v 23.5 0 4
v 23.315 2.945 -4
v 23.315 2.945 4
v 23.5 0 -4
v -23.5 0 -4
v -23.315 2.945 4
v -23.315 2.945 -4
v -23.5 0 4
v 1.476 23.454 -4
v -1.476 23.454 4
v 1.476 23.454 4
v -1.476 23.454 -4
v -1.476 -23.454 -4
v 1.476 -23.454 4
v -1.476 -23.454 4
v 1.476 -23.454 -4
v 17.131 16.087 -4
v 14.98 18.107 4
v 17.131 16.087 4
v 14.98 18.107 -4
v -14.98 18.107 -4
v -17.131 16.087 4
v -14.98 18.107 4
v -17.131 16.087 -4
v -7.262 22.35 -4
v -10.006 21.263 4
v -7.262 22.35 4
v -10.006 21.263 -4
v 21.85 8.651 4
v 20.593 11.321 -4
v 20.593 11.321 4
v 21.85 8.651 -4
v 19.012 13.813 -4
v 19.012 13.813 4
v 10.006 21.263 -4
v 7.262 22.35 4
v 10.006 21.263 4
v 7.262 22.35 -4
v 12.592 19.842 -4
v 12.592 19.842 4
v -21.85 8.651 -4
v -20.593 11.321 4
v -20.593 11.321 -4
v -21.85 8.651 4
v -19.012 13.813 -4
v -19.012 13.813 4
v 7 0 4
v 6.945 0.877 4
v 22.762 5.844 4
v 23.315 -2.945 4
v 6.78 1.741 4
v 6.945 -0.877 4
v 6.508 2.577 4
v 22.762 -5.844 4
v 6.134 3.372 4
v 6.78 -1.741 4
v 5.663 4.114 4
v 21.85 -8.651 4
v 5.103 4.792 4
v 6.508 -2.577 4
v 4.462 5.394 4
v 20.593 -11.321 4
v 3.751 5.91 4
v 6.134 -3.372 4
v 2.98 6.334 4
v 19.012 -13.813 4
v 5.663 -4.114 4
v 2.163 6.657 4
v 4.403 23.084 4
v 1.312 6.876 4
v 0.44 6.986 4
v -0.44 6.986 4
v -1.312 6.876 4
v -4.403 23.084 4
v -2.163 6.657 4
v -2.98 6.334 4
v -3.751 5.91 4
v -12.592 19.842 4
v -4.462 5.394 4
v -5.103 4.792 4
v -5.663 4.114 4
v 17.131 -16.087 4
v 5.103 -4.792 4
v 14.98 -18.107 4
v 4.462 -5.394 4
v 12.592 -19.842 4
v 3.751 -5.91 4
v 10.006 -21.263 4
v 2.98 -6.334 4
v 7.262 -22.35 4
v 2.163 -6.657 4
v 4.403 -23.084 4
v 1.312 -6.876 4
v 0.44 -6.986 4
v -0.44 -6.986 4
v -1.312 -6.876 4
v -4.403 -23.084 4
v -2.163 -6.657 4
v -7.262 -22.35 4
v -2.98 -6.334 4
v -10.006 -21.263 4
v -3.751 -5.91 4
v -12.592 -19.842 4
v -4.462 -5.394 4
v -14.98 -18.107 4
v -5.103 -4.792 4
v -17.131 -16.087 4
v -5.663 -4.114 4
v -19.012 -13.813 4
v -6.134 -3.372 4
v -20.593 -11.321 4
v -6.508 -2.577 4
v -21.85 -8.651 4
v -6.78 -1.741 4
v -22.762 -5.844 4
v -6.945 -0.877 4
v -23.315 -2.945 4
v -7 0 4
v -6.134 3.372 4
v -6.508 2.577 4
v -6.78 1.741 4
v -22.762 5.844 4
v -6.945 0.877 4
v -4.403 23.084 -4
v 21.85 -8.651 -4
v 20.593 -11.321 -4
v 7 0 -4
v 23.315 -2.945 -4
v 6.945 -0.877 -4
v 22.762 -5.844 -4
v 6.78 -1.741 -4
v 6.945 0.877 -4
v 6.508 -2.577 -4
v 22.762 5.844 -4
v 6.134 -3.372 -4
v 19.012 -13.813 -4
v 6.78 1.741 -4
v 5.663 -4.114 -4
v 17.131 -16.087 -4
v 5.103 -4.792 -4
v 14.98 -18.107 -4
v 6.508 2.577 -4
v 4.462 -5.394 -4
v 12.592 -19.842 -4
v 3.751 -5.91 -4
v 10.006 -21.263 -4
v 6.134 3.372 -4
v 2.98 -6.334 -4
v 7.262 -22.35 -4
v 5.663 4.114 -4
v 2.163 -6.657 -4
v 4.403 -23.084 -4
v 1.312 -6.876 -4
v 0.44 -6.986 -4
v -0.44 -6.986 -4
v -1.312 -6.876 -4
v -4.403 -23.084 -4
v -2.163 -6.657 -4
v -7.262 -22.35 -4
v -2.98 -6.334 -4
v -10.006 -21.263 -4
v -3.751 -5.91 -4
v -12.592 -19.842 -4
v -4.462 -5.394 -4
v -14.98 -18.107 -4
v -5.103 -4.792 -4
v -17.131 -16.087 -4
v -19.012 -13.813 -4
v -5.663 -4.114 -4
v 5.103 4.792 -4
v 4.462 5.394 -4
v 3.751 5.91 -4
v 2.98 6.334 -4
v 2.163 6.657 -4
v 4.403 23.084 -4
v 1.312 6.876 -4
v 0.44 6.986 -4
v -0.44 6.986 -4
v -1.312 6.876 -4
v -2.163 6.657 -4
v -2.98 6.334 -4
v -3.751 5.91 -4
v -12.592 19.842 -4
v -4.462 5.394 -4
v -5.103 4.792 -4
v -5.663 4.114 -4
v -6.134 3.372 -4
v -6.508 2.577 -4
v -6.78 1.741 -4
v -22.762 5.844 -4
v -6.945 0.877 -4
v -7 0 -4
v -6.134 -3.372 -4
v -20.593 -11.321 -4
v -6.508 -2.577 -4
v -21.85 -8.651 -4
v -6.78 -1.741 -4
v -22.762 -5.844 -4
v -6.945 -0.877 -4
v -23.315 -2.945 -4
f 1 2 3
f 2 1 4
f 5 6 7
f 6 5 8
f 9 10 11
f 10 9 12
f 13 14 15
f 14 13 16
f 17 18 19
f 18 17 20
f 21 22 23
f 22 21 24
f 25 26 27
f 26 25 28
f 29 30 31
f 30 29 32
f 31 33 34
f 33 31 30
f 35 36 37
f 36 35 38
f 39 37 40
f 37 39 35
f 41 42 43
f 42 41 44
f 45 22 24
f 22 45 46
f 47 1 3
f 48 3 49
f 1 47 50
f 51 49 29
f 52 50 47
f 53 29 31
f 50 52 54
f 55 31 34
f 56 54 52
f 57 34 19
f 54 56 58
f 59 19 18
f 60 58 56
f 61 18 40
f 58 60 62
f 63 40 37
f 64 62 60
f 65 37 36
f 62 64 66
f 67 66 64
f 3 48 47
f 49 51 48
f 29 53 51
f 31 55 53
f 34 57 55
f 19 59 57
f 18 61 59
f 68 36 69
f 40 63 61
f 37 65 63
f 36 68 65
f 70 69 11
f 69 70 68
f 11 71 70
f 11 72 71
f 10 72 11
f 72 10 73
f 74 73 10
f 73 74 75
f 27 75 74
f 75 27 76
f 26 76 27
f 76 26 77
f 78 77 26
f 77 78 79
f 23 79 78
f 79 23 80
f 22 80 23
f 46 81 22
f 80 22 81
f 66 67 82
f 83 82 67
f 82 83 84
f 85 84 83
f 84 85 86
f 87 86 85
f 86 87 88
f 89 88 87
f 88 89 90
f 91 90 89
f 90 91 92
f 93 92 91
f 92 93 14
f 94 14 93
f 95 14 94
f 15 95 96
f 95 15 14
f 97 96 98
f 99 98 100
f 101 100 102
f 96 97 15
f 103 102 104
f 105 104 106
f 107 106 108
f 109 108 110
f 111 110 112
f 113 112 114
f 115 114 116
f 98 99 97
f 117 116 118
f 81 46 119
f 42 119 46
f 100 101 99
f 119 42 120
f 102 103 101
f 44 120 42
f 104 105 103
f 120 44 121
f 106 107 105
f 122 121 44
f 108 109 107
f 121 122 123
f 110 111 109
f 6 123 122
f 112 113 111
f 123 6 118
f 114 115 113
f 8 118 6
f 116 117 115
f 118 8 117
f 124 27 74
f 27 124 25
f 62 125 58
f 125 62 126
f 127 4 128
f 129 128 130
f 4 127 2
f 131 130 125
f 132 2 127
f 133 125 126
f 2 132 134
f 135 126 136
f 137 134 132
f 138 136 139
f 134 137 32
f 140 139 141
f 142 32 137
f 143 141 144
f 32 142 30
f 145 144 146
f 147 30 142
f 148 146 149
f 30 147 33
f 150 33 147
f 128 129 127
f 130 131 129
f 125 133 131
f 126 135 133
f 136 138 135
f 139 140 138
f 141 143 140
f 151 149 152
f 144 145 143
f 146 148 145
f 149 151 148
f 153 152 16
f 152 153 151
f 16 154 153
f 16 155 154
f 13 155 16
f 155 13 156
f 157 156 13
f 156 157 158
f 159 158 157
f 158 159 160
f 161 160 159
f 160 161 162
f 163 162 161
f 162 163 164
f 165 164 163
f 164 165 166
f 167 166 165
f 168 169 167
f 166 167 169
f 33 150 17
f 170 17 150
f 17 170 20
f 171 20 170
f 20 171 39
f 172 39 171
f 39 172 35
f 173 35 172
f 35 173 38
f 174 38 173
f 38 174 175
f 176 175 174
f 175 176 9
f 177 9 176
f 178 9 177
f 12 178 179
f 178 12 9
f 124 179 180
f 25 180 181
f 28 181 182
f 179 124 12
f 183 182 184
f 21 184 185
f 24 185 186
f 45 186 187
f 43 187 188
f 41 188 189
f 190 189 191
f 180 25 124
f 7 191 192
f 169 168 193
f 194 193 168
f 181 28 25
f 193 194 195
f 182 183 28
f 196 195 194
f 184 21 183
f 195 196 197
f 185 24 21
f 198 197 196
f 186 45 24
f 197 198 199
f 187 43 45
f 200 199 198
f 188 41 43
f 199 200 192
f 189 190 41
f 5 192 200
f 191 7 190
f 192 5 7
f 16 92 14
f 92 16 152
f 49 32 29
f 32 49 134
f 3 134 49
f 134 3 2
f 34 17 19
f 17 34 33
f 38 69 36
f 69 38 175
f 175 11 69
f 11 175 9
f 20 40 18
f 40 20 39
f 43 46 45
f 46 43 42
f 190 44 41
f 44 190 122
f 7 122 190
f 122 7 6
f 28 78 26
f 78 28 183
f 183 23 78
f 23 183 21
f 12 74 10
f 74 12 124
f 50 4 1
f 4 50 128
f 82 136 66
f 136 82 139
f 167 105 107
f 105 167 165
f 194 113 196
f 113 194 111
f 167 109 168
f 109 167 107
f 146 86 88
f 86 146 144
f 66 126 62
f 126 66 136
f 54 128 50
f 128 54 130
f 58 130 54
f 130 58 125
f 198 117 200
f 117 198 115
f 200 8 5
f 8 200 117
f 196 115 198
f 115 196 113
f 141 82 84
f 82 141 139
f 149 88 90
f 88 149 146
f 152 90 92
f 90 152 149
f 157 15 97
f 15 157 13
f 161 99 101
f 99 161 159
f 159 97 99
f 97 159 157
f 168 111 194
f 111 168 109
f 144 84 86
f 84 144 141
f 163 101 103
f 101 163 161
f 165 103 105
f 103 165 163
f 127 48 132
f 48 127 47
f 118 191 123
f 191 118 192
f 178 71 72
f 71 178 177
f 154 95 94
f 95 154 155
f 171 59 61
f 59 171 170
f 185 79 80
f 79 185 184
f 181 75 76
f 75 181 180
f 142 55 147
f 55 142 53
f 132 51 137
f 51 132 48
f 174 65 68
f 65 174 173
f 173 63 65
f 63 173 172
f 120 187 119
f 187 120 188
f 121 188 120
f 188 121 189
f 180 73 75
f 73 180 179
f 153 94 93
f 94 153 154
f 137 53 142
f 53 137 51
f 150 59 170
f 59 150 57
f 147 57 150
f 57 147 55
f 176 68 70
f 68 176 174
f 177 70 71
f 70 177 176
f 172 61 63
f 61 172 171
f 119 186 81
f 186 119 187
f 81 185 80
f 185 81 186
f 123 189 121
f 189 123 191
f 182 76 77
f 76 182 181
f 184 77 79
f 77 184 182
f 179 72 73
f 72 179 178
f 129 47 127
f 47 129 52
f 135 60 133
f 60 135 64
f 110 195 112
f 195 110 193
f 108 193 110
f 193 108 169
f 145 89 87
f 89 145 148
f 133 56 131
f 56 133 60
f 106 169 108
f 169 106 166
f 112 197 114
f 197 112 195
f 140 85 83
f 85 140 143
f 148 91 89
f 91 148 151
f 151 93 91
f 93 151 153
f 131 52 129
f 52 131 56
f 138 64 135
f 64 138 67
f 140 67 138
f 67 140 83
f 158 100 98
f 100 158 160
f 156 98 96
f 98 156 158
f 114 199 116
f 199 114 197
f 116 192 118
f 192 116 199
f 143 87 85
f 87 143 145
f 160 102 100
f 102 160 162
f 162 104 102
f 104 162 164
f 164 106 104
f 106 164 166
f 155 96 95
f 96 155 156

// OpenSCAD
$fn = 50;


difference() {
	union() {
		translate(v = [0, 0, -4.0000000000]) {
			cylinder(h = 8, r = 23.5000000000);
		}
	}
	union() {
		translate(v = [0, 0, -100.0000000000]) {
			cylinder(h = 200, r = 7);
		}
	}
}
